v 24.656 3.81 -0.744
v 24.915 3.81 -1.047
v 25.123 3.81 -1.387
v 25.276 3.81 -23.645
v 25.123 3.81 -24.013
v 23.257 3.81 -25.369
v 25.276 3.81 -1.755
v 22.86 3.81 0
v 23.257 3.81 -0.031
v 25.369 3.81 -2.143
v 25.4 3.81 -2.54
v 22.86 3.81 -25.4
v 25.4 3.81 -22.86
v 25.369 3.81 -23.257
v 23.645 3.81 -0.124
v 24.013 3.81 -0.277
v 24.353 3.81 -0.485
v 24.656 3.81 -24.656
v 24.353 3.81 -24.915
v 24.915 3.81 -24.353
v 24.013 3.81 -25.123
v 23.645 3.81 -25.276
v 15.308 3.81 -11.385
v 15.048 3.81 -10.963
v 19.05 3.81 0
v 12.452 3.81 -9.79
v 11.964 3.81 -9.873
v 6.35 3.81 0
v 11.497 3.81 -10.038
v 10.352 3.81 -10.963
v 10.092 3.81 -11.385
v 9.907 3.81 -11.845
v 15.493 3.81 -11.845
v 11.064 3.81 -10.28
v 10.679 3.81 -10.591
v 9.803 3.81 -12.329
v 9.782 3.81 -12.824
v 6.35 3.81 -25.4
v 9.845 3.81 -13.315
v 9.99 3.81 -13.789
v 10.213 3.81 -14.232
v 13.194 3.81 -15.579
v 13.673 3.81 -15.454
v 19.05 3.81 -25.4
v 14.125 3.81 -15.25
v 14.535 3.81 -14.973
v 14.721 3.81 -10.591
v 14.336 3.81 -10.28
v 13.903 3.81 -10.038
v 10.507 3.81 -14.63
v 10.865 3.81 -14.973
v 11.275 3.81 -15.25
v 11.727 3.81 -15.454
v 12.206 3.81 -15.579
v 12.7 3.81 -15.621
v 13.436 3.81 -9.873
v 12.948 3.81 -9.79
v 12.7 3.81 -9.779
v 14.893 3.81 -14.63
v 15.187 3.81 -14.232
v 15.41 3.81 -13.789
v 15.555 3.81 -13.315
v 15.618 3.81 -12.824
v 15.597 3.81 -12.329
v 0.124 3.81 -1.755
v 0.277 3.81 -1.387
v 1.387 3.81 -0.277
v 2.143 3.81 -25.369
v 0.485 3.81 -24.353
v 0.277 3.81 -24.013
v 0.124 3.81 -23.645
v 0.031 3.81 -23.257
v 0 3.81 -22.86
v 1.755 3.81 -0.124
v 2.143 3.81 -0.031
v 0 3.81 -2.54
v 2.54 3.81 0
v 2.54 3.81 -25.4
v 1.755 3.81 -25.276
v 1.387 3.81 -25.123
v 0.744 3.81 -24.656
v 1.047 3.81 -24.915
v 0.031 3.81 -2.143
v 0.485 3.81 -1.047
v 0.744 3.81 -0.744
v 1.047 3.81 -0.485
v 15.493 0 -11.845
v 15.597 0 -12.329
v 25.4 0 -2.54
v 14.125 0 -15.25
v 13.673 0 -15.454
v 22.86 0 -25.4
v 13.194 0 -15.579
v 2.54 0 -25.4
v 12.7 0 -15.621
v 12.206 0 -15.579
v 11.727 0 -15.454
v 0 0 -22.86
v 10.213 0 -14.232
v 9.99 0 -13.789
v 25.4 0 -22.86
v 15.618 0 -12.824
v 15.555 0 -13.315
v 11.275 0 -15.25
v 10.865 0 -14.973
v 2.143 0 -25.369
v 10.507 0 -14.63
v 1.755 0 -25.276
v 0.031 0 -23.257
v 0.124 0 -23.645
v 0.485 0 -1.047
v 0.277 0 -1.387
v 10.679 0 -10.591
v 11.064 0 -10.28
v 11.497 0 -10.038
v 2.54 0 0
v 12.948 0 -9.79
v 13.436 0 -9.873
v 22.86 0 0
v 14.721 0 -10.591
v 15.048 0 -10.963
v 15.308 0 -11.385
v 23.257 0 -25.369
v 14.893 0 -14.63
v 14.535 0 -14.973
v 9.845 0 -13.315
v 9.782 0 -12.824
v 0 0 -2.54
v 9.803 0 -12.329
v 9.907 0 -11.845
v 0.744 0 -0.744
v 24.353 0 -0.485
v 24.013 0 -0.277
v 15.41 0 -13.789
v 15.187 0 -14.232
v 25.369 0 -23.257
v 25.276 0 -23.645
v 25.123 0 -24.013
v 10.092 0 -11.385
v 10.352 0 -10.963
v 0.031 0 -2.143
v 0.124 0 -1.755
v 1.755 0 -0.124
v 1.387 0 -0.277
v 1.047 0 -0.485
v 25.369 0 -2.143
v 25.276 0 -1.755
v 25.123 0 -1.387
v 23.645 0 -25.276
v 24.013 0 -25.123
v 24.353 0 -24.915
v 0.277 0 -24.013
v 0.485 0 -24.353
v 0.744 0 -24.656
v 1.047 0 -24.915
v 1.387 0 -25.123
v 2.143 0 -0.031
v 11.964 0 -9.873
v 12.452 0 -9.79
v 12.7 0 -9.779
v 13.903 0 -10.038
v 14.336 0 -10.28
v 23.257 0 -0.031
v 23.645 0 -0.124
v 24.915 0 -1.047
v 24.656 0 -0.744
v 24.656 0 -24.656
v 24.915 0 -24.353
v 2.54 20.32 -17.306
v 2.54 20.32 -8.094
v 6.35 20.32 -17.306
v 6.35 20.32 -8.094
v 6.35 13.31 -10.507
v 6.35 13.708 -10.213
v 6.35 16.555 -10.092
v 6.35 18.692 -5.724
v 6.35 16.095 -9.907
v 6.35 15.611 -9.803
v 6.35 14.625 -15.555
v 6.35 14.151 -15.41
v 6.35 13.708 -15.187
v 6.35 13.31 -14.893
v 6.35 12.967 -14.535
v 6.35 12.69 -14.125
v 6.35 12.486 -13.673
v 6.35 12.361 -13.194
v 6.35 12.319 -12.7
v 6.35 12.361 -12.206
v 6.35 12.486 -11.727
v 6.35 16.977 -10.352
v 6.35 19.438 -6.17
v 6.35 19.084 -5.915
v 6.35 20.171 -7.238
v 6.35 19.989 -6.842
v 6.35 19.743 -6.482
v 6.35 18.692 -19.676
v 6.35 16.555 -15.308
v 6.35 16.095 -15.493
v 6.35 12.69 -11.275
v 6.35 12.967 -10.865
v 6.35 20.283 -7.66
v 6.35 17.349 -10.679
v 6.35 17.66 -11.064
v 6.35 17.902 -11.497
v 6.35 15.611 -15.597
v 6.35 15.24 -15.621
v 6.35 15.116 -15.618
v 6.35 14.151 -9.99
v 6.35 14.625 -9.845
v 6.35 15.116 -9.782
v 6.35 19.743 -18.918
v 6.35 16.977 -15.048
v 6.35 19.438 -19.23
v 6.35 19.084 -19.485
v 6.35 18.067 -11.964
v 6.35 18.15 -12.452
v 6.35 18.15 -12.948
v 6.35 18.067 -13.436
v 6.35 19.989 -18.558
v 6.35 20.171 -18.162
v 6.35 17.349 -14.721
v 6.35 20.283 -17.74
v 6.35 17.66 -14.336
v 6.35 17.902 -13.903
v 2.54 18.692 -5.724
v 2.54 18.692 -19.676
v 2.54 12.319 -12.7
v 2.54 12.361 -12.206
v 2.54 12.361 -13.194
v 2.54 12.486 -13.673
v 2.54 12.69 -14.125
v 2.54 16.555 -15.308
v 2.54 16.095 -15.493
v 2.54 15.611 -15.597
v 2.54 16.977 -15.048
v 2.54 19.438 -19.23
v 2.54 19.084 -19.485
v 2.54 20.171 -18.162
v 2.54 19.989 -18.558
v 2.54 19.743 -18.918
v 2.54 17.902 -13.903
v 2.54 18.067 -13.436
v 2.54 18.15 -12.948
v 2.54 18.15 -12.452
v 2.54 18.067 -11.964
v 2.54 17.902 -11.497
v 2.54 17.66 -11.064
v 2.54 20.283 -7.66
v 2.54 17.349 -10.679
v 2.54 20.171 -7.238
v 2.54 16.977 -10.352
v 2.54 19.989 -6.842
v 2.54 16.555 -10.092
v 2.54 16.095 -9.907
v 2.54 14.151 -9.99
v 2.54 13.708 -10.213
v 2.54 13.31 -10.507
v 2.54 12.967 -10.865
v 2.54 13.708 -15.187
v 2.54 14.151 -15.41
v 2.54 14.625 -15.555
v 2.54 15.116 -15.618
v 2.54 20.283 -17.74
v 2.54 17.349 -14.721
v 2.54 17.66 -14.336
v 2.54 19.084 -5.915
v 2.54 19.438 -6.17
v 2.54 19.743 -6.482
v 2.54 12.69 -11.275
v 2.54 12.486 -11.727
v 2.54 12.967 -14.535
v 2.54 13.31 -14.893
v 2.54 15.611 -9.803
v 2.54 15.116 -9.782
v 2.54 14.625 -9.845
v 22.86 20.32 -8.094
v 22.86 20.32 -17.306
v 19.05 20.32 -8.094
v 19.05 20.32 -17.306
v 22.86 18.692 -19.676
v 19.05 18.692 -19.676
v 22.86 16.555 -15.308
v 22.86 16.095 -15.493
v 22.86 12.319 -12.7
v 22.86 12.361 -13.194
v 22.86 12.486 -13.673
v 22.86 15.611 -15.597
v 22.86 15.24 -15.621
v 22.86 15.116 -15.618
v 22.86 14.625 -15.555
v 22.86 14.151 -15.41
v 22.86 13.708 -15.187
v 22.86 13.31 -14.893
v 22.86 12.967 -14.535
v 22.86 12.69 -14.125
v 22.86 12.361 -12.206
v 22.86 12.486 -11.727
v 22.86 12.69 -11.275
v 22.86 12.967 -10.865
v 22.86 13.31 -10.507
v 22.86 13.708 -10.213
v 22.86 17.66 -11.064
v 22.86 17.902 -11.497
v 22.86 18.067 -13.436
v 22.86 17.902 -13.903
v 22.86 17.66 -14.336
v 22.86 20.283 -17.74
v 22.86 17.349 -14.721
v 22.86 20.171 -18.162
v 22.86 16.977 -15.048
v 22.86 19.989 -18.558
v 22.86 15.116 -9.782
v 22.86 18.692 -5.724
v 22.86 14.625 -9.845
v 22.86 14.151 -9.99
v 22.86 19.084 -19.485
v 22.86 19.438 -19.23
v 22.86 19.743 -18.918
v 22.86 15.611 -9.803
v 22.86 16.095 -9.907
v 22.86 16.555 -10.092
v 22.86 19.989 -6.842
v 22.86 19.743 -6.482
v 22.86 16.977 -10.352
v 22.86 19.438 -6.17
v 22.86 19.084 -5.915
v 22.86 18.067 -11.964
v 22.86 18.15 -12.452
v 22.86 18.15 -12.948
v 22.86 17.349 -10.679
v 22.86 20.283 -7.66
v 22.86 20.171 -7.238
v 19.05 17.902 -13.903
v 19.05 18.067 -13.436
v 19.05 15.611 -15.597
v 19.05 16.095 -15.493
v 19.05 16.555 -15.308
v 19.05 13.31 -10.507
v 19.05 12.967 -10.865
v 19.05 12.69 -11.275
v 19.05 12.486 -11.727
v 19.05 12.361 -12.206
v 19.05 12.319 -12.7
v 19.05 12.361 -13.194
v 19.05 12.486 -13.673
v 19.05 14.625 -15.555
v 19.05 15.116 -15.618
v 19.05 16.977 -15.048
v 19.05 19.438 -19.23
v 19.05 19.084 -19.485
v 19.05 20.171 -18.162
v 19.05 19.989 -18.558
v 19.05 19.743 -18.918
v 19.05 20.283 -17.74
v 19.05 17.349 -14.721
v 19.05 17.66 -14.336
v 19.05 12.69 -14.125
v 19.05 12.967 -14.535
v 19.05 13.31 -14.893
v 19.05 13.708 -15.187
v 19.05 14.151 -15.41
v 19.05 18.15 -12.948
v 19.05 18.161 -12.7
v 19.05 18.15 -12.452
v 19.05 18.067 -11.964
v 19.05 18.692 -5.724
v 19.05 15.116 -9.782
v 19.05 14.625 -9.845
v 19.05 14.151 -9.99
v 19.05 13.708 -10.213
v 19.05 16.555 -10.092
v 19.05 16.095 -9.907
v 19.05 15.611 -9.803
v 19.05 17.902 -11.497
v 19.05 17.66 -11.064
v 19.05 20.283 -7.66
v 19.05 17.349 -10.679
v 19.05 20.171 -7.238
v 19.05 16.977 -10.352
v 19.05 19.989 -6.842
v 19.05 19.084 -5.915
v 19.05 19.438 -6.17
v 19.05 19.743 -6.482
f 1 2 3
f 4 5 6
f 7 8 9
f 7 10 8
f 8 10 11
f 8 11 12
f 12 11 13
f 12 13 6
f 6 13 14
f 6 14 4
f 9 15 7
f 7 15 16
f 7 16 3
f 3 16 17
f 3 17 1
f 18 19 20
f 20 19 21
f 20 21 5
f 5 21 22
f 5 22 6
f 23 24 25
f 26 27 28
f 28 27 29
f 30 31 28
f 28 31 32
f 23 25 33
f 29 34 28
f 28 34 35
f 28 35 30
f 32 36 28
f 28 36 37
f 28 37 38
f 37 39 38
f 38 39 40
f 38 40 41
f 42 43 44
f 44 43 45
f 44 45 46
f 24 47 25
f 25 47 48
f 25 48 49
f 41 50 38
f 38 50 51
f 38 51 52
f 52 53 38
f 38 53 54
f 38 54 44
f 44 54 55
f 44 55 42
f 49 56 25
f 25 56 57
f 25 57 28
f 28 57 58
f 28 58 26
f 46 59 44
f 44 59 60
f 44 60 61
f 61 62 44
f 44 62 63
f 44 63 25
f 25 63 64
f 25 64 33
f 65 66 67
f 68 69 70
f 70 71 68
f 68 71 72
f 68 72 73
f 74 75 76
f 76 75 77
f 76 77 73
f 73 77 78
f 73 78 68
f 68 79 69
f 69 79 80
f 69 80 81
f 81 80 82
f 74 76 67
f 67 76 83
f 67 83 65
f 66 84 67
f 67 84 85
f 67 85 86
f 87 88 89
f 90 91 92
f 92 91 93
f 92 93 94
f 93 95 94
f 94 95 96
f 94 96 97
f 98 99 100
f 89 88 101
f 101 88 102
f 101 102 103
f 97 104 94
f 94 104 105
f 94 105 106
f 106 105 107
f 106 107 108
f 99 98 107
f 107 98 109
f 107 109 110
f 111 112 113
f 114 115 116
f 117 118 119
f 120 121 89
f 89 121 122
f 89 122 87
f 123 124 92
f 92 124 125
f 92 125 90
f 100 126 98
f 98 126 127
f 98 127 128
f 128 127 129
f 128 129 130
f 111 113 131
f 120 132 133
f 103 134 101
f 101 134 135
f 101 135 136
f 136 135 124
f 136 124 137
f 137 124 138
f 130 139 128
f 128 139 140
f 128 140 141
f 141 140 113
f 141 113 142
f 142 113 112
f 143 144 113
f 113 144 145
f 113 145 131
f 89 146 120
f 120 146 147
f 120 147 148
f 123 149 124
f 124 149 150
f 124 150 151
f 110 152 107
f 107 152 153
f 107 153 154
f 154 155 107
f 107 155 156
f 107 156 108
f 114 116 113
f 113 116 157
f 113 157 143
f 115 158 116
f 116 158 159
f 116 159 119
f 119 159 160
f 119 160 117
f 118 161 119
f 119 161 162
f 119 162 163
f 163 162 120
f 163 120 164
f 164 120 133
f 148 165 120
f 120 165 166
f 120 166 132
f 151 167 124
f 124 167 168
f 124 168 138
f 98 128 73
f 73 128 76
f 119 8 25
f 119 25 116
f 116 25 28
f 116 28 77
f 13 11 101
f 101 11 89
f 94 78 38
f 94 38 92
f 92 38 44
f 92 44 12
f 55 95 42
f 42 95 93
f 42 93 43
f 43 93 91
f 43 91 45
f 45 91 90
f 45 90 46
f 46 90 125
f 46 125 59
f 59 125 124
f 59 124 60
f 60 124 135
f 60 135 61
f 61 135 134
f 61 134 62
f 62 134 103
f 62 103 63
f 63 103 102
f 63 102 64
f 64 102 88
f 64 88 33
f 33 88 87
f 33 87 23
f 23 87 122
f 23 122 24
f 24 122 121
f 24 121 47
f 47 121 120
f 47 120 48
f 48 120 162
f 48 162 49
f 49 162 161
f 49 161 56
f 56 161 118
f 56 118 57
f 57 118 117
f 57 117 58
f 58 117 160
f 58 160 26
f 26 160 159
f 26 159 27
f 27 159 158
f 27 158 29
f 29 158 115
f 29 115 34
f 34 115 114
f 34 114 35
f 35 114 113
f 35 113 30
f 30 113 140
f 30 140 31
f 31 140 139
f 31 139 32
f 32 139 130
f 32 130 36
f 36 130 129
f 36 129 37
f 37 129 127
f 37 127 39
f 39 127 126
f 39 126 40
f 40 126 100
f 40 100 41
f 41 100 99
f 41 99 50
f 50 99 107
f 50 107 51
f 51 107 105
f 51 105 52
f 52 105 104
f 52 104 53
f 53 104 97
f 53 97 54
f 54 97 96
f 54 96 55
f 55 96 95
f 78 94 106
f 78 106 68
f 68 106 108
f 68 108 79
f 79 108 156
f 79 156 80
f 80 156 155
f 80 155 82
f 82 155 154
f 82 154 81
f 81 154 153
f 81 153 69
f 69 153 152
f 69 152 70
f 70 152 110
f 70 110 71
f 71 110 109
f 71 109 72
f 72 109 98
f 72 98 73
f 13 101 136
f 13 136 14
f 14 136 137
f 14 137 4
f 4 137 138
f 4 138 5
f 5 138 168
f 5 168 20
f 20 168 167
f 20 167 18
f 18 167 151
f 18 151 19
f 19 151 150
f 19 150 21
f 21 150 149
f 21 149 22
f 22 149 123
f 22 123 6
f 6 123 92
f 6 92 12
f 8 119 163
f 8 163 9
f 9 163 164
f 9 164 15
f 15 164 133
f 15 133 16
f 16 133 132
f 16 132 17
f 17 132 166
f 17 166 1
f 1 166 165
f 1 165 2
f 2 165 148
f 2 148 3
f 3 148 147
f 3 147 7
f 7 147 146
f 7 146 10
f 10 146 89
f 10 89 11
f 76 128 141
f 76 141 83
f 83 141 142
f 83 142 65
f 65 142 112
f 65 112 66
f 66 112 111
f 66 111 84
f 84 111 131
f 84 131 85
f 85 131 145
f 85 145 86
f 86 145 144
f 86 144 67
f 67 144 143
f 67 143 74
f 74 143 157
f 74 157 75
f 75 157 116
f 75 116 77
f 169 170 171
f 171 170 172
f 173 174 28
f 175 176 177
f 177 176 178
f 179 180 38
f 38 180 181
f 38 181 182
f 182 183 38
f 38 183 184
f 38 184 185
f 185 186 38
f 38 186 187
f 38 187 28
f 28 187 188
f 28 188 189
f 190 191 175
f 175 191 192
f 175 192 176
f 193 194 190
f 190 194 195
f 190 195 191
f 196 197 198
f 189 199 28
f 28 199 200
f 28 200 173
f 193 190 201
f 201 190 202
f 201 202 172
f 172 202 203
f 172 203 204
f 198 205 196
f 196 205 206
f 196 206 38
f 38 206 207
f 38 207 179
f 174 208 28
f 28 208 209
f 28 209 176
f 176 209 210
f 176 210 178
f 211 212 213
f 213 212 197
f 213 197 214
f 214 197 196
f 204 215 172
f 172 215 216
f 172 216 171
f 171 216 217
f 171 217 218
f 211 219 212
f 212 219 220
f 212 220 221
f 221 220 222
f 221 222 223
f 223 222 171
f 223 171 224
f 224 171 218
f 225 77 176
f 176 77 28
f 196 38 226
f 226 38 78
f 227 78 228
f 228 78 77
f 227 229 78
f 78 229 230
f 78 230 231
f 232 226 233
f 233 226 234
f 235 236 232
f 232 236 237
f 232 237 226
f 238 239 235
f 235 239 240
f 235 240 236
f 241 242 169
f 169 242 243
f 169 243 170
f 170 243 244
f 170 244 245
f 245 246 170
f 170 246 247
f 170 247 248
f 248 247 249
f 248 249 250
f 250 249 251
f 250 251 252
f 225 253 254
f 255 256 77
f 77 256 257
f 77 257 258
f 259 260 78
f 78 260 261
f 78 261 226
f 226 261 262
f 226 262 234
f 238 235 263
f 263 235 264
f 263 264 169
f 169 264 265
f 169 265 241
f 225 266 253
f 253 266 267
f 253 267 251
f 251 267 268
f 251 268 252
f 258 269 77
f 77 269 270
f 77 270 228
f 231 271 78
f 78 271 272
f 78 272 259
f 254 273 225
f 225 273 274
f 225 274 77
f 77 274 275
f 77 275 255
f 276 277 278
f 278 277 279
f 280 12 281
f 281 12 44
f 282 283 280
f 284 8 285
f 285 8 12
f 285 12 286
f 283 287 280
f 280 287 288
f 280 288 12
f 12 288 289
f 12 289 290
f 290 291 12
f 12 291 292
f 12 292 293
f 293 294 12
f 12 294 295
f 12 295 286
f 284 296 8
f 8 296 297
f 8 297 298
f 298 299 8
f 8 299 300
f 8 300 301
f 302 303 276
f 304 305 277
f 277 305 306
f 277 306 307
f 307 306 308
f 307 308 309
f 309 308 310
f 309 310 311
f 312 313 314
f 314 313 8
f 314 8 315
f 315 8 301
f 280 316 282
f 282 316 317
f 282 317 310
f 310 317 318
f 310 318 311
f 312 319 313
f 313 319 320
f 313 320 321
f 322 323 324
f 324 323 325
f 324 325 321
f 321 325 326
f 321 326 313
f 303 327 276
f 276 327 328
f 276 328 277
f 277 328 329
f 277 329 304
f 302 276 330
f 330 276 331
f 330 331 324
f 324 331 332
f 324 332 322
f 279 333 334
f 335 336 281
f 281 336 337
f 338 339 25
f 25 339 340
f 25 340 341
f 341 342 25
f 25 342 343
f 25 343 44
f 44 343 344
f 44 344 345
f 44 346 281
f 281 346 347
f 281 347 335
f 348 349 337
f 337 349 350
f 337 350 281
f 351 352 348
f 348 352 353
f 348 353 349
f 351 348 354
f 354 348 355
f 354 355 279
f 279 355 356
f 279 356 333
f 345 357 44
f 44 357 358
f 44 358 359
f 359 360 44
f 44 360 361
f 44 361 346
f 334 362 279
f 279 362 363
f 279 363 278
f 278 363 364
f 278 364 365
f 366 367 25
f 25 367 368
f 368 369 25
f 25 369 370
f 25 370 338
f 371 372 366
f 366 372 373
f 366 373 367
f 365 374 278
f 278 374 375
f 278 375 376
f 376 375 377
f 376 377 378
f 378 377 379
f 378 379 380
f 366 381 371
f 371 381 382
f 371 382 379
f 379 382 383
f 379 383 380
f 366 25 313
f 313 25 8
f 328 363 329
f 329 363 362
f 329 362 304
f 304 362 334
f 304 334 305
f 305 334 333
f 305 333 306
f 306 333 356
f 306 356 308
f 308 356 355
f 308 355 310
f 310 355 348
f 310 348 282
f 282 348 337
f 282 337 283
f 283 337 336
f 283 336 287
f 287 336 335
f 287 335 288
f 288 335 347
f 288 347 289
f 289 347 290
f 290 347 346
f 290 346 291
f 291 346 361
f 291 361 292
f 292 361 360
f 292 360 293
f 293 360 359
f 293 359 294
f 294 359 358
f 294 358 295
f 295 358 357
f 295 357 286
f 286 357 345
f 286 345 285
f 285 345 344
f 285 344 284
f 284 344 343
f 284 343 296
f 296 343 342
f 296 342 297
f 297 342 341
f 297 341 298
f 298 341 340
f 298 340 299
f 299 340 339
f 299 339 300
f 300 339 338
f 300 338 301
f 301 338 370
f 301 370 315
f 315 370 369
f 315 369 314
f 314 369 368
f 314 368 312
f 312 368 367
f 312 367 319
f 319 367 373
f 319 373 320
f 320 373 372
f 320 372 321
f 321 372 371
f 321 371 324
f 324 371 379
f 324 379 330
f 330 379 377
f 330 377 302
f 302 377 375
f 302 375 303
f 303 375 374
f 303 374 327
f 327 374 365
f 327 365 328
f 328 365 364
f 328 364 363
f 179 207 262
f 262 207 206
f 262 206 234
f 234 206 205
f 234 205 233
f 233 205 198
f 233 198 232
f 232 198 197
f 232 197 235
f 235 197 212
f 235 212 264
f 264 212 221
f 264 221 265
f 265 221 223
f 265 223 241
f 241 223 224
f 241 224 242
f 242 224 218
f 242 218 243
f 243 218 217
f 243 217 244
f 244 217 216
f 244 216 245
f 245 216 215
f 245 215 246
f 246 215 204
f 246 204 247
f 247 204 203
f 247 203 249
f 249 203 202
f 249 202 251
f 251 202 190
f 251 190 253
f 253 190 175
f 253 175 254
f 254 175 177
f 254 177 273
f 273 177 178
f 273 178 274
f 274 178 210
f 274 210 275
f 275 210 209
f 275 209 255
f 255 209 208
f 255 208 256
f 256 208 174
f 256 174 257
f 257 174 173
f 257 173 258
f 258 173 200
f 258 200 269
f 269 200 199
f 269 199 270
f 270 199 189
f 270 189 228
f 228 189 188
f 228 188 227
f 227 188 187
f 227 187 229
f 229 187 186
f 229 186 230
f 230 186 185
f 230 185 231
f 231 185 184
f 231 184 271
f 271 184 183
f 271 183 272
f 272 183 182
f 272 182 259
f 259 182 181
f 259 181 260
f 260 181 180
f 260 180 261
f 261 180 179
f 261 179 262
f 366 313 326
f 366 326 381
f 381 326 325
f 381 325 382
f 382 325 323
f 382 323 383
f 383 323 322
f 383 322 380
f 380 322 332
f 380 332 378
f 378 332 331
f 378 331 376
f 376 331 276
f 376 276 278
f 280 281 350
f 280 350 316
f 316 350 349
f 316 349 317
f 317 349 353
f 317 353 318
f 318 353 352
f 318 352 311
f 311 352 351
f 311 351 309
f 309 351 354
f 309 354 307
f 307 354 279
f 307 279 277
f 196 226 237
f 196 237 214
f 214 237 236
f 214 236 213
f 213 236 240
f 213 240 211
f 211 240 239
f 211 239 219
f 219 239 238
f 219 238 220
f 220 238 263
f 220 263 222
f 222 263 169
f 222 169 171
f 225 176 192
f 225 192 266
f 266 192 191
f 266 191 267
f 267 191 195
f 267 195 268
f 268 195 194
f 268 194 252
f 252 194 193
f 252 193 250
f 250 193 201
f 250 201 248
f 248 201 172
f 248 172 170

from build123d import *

# Parameters (mm, degrees)
SKETCH1_W           = 25.4
SKETCH1_H           = 25.4
SKETCH1_R           = 2.921
BOSS_EXTRUDE1_DEPTH = 3.81
FILLET1_R           = 2.54
SKETCH4_R           = 2.921
CUT_EXTRUDE1_DEPTH  = 40.757288755
FILLET2_R           = 2.54


with BuildPart() as part:
    # Sketch1 → Boss-Extrude1 (new body)
    with BuildSketch(Plane(origin=(0, 0, 0), x_dir=(1, 0, 0), z_dir=(0, 1, 0))):
        with Locations((12.7, 12.7)):
            Rectangle(SKETCH1_W, SKETCH1_H)
        with Locations(Location((12.7, 12.7, 0), (0, 0, 90))):
            Circle(SKETCH1_R, mode=Mode.SUBTRACT)
    extrude(amount=BOSS_EXTRUDE1_DEPTH)

    # Fillet1
    fillet1_edges = [part.edges().sort_by_distance(p)[0] for p in [
        (0, 1.905, -25.4),
        (25.4, 1.905, -25.4),
        (25.4, 1.905, 0),
        (0, 1.905, 0),
    ]]
    fillet(fillet1_edges, radius=FILLET1_R)

    # Sketch2 → Loft2 section 0
    with BuildSketch(Plane(origin=(0, 3.81, 0), x_dir=(1, 0, 0), z_dir=(0, 1, 0))):
        with BuildLine():
            Line((2.54, 25.4), (6.35, 25.4))
            Line((6.35, 25.4), (6.35, 0))
            Line((6.35, 0), (2.54, 0))
            Line((2.54, 0), (2.54, 25.4))
        make_face()
    # Sketch3 → Loft2 section 1
    with BuildSketch(Plane(origin=(0, 20.32, 0), x_dir=(1, 0, 0), z_dir=(0, 1, 0))):
        with BuildLine():
            Line((2.54, 19.05), (6.35, 19.05))
            Line((6.35, 19.05), (6.35, 6.35))
            Line((6.35, 6.35), (2.54, 6.35))
            Line((2.54, 6.35), (2.54, 19.05))
        make_face()
    loft()

    # Sketch2<3> → Loft3 section 0
    with BuildSketch(Plane(origin=(0, 3.81, 0), x_dir=(1, 0, 0), z_dir=(0, 1, 0))):
        with BuildLine():
            Line((22.86, 25.4), (19.05, 25.4))
            Line((19.05, 25.4), (19.05, 0))
            Line((19.05, 0), (22.86, 0))
            Line((22.86, 0), (22.86, 25.4))
        make_face()
    # Sketch3<3> → Loft3 section 1
    with BuildSketch(Plane(origin=(0, 20.32, 0), x_dir=(1, 0, 0), z_dir=(0, 1, 0))):
        with BuildLine():
            Line((19.05, 19.05), (22.86, 19.05))
            Line((22.86, 19.05), (22.86, 6.35))
            Line((22.86, 6.35), (19.05, 6.35))
            Line((19.05, 6.35), (19.05, 19.05))
        make_face()
    loft()

    # Sketch4 → Cut-Extrude1 (cut, through all)
    with BuildSketch(Plane.ZY.offset(-2.54)):
        with Locations(Location((-12.7, 15.24, 0), (0, 0, 270))):
            Circle(SKETCH4_R)
    extrude(amount=-CUT_EXTRUDE1_DEPTH, mode=Mode.SUBTRACT)

    # Fillet2
    fillet2_edges = [part.edges().sort_by_distance(p)[0] for p in [
        (20.955, 20.32, -6.35),
        (20.955, 20.32, -19.05),
        (4.445, 20.32, -19.05),
        (4.445, 20.32, -6.35),
    ]]
    fillet(fillet2_edges, radius=FILLET2_R)


solid = part.part
